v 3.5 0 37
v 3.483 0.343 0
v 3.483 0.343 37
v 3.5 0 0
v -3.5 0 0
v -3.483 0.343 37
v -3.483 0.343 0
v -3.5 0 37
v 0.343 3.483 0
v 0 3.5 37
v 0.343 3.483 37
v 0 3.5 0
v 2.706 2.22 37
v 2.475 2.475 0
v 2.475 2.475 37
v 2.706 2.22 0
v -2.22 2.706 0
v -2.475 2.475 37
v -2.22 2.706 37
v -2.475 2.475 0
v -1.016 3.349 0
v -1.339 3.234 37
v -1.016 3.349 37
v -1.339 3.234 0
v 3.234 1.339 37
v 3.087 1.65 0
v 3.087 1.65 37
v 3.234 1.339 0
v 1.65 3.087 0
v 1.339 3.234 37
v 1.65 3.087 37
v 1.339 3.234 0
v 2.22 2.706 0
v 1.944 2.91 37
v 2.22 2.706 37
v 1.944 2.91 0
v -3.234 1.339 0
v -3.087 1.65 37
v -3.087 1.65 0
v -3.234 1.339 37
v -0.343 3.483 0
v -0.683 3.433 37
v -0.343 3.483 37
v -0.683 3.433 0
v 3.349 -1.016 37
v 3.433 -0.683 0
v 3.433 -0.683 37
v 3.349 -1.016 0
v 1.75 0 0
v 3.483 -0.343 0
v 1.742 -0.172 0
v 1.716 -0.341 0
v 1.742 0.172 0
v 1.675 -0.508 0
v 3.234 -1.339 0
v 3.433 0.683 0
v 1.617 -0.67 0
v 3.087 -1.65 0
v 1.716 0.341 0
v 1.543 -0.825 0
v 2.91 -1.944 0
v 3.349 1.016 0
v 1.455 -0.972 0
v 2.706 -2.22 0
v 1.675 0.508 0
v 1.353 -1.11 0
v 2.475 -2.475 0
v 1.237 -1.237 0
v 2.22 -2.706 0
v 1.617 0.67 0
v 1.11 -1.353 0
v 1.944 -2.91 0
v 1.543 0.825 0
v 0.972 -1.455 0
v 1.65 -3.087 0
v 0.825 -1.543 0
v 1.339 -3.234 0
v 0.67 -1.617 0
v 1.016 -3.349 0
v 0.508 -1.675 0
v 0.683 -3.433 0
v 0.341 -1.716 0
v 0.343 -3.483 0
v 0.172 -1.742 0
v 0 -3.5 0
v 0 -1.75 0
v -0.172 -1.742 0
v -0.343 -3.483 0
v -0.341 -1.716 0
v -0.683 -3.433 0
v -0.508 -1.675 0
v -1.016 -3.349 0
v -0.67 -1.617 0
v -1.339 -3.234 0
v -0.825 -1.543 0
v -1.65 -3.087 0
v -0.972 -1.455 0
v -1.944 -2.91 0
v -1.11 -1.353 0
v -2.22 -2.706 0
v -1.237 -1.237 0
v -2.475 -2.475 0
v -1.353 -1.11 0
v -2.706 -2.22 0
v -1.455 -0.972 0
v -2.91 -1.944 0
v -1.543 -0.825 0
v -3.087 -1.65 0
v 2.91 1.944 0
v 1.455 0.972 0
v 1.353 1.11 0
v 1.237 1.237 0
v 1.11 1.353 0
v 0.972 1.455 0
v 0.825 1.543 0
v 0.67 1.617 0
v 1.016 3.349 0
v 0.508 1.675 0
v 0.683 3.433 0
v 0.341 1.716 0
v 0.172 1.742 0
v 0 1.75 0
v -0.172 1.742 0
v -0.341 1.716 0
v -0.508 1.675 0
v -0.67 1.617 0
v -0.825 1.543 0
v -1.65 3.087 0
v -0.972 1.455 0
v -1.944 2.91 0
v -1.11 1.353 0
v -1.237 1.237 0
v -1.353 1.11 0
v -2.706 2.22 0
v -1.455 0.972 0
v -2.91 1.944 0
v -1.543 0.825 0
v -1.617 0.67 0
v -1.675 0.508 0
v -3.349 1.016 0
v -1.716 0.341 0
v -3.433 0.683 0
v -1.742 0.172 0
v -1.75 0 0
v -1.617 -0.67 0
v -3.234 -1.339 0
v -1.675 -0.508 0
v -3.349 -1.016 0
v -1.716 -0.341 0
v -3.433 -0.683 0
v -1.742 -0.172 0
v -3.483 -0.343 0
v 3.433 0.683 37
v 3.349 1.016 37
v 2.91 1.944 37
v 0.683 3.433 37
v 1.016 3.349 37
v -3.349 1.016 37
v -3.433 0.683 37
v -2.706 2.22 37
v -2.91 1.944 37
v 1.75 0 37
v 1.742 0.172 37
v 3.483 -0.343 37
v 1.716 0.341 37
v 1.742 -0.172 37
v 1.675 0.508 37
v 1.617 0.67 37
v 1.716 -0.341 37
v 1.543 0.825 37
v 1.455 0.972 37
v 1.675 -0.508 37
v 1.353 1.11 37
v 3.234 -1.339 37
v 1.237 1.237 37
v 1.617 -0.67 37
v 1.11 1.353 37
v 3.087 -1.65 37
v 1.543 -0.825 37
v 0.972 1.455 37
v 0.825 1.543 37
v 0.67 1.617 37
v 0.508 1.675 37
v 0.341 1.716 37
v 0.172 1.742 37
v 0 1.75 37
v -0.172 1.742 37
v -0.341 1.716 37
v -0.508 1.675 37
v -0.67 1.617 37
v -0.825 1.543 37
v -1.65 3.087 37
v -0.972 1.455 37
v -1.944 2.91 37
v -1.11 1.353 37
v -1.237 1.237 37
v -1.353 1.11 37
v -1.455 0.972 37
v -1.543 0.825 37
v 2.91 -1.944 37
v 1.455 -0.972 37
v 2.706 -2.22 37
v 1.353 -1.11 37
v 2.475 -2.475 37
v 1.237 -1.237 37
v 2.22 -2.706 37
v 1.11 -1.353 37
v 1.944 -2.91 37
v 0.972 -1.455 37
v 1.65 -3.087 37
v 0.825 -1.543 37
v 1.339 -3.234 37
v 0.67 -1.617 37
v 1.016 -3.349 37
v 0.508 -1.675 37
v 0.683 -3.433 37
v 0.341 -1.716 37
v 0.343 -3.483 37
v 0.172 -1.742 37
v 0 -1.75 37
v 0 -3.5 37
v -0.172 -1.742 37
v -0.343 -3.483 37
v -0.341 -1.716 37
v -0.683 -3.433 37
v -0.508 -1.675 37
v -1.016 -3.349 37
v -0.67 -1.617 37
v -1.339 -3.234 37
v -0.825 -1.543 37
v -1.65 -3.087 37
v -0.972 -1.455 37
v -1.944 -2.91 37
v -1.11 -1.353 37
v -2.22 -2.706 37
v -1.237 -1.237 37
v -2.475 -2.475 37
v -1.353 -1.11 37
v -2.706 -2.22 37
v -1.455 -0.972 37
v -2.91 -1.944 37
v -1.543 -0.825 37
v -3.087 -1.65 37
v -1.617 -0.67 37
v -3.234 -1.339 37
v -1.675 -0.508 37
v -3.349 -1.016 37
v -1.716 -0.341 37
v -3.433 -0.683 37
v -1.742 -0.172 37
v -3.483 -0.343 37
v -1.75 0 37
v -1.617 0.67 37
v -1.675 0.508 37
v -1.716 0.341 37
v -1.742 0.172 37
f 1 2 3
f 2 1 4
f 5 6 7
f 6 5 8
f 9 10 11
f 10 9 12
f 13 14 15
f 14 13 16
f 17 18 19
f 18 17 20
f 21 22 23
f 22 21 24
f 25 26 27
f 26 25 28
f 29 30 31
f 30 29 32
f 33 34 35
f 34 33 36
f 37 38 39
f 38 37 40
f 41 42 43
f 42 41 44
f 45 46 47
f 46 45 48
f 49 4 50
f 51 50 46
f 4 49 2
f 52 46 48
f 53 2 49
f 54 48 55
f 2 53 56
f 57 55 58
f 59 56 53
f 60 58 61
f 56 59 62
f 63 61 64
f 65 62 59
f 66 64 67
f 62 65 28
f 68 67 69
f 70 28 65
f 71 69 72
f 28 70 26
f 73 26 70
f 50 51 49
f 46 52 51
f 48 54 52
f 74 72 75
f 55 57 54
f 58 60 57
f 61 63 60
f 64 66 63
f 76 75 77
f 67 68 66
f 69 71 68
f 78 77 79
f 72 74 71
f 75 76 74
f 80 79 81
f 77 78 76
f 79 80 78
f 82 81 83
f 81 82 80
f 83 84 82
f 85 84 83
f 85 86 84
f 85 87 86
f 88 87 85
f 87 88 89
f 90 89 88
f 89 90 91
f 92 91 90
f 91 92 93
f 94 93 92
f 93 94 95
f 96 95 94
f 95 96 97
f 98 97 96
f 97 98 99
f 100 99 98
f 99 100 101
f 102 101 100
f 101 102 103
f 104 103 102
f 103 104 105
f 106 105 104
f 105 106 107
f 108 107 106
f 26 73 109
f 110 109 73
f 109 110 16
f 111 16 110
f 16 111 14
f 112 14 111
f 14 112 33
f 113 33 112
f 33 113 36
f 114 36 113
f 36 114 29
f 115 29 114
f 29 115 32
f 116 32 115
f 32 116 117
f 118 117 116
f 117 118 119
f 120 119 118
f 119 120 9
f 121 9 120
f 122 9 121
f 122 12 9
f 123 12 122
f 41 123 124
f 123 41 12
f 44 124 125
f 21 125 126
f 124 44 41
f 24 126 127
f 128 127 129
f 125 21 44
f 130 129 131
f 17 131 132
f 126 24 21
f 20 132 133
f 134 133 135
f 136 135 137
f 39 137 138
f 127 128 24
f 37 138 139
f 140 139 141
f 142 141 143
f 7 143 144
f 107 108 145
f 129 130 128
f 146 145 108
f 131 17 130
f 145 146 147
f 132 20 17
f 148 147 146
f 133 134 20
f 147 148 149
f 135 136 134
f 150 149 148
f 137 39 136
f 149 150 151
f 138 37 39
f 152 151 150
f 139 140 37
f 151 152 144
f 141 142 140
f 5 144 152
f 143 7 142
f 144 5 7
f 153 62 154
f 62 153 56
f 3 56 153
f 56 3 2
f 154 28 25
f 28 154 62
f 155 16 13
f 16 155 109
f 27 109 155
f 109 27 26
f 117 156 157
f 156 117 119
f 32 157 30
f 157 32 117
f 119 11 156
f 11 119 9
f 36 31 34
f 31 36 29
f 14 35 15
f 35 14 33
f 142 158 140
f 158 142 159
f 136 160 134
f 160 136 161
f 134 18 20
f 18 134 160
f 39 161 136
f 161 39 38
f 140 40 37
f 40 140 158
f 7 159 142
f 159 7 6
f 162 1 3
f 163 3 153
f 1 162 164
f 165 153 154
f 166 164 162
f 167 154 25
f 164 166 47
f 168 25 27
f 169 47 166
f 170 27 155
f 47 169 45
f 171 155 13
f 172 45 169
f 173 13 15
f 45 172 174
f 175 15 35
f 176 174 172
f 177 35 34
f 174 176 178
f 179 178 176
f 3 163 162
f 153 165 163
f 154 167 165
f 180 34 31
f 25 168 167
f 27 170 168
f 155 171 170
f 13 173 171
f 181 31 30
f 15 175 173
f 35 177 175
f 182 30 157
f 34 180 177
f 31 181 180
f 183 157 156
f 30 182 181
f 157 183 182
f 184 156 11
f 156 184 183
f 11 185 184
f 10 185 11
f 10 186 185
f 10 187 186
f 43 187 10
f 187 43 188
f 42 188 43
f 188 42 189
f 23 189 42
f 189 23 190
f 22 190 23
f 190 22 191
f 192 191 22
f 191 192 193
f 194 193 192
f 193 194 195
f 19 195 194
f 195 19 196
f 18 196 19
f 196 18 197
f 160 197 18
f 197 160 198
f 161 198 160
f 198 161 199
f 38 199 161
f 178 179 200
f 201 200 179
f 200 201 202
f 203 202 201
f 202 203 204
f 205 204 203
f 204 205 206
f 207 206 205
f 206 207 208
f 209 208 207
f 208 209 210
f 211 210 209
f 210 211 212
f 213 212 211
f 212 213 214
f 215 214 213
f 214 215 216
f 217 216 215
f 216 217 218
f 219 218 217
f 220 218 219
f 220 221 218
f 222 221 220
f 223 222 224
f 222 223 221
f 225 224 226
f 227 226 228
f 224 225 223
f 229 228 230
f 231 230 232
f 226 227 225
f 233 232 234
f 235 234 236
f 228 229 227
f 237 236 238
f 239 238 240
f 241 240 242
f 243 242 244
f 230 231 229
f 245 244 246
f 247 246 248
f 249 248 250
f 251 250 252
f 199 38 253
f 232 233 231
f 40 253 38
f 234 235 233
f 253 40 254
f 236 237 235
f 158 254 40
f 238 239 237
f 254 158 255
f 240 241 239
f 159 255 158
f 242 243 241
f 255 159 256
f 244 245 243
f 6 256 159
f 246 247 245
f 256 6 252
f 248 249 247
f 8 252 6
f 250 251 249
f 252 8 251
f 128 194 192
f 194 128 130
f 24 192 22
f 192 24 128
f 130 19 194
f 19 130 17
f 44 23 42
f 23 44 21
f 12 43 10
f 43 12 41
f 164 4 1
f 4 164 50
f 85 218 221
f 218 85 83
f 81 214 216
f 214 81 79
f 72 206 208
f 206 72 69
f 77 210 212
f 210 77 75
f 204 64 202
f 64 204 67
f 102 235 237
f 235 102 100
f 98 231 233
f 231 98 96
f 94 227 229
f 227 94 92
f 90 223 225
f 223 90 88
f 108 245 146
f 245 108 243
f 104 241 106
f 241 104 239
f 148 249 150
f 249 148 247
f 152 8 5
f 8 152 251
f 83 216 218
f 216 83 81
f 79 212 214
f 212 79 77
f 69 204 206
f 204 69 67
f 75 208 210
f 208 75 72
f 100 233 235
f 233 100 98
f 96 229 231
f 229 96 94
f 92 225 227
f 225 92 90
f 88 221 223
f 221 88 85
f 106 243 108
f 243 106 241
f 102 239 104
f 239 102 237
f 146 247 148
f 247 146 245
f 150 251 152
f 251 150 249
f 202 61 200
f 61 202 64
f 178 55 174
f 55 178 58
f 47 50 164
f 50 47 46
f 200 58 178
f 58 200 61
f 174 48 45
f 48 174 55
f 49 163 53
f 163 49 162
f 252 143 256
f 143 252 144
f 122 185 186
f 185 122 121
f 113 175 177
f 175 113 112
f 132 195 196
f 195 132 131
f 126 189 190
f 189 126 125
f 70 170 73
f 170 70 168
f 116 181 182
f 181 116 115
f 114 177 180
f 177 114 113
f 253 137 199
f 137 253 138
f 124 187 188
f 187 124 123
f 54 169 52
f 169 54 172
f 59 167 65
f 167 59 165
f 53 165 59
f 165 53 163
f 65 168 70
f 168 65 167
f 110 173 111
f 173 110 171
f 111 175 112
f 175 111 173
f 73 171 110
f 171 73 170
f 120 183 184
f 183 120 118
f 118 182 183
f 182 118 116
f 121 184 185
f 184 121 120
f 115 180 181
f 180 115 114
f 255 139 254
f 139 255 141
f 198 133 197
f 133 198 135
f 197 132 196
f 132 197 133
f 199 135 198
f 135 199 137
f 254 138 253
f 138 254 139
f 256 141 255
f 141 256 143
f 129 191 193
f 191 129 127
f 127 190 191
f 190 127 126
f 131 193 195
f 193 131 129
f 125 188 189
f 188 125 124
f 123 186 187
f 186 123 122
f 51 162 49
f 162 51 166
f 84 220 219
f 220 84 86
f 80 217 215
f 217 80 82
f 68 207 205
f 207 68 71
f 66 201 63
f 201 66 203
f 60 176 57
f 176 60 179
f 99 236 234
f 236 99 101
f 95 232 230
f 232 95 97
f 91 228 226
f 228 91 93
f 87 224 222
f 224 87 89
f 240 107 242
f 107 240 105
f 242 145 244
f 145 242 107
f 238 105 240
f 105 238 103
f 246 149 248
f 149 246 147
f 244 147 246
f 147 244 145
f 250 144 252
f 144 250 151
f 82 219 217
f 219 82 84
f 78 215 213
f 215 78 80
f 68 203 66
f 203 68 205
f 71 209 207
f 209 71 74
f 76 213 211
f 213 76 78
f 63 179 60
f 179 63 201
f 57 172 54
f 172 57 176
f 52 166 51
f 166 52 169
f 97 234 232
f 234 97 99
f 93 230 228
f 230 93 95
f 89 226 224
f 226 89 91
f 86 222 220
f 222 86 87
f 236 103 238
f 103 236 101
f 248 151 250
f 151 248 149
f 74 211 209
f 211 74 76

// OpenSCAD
//translate([0,0,-5])
//linear_extrude(height = 5, center = false, convexity = 10)
//import("C:/Users/Loki-VR/Documents/Control v1-brd.svg", convexity=3);

//37mm tall
board_height = 37;
standoff_width=7;
hole_diameter = 3.5;
hole_locations = [[13.3,5,0],[13.3,185,0],[143.3,5,0],[143.3,185,0]];
$fn= $preview ? 32 : 64;
//for(i = hole_locations)
//translate(i)
difference(){
cylinder(h=board_height,d=standoff_width);
    translate([0,0,-0.5])
cylinder(h=board_height+1,d=hole_diameter);
}
